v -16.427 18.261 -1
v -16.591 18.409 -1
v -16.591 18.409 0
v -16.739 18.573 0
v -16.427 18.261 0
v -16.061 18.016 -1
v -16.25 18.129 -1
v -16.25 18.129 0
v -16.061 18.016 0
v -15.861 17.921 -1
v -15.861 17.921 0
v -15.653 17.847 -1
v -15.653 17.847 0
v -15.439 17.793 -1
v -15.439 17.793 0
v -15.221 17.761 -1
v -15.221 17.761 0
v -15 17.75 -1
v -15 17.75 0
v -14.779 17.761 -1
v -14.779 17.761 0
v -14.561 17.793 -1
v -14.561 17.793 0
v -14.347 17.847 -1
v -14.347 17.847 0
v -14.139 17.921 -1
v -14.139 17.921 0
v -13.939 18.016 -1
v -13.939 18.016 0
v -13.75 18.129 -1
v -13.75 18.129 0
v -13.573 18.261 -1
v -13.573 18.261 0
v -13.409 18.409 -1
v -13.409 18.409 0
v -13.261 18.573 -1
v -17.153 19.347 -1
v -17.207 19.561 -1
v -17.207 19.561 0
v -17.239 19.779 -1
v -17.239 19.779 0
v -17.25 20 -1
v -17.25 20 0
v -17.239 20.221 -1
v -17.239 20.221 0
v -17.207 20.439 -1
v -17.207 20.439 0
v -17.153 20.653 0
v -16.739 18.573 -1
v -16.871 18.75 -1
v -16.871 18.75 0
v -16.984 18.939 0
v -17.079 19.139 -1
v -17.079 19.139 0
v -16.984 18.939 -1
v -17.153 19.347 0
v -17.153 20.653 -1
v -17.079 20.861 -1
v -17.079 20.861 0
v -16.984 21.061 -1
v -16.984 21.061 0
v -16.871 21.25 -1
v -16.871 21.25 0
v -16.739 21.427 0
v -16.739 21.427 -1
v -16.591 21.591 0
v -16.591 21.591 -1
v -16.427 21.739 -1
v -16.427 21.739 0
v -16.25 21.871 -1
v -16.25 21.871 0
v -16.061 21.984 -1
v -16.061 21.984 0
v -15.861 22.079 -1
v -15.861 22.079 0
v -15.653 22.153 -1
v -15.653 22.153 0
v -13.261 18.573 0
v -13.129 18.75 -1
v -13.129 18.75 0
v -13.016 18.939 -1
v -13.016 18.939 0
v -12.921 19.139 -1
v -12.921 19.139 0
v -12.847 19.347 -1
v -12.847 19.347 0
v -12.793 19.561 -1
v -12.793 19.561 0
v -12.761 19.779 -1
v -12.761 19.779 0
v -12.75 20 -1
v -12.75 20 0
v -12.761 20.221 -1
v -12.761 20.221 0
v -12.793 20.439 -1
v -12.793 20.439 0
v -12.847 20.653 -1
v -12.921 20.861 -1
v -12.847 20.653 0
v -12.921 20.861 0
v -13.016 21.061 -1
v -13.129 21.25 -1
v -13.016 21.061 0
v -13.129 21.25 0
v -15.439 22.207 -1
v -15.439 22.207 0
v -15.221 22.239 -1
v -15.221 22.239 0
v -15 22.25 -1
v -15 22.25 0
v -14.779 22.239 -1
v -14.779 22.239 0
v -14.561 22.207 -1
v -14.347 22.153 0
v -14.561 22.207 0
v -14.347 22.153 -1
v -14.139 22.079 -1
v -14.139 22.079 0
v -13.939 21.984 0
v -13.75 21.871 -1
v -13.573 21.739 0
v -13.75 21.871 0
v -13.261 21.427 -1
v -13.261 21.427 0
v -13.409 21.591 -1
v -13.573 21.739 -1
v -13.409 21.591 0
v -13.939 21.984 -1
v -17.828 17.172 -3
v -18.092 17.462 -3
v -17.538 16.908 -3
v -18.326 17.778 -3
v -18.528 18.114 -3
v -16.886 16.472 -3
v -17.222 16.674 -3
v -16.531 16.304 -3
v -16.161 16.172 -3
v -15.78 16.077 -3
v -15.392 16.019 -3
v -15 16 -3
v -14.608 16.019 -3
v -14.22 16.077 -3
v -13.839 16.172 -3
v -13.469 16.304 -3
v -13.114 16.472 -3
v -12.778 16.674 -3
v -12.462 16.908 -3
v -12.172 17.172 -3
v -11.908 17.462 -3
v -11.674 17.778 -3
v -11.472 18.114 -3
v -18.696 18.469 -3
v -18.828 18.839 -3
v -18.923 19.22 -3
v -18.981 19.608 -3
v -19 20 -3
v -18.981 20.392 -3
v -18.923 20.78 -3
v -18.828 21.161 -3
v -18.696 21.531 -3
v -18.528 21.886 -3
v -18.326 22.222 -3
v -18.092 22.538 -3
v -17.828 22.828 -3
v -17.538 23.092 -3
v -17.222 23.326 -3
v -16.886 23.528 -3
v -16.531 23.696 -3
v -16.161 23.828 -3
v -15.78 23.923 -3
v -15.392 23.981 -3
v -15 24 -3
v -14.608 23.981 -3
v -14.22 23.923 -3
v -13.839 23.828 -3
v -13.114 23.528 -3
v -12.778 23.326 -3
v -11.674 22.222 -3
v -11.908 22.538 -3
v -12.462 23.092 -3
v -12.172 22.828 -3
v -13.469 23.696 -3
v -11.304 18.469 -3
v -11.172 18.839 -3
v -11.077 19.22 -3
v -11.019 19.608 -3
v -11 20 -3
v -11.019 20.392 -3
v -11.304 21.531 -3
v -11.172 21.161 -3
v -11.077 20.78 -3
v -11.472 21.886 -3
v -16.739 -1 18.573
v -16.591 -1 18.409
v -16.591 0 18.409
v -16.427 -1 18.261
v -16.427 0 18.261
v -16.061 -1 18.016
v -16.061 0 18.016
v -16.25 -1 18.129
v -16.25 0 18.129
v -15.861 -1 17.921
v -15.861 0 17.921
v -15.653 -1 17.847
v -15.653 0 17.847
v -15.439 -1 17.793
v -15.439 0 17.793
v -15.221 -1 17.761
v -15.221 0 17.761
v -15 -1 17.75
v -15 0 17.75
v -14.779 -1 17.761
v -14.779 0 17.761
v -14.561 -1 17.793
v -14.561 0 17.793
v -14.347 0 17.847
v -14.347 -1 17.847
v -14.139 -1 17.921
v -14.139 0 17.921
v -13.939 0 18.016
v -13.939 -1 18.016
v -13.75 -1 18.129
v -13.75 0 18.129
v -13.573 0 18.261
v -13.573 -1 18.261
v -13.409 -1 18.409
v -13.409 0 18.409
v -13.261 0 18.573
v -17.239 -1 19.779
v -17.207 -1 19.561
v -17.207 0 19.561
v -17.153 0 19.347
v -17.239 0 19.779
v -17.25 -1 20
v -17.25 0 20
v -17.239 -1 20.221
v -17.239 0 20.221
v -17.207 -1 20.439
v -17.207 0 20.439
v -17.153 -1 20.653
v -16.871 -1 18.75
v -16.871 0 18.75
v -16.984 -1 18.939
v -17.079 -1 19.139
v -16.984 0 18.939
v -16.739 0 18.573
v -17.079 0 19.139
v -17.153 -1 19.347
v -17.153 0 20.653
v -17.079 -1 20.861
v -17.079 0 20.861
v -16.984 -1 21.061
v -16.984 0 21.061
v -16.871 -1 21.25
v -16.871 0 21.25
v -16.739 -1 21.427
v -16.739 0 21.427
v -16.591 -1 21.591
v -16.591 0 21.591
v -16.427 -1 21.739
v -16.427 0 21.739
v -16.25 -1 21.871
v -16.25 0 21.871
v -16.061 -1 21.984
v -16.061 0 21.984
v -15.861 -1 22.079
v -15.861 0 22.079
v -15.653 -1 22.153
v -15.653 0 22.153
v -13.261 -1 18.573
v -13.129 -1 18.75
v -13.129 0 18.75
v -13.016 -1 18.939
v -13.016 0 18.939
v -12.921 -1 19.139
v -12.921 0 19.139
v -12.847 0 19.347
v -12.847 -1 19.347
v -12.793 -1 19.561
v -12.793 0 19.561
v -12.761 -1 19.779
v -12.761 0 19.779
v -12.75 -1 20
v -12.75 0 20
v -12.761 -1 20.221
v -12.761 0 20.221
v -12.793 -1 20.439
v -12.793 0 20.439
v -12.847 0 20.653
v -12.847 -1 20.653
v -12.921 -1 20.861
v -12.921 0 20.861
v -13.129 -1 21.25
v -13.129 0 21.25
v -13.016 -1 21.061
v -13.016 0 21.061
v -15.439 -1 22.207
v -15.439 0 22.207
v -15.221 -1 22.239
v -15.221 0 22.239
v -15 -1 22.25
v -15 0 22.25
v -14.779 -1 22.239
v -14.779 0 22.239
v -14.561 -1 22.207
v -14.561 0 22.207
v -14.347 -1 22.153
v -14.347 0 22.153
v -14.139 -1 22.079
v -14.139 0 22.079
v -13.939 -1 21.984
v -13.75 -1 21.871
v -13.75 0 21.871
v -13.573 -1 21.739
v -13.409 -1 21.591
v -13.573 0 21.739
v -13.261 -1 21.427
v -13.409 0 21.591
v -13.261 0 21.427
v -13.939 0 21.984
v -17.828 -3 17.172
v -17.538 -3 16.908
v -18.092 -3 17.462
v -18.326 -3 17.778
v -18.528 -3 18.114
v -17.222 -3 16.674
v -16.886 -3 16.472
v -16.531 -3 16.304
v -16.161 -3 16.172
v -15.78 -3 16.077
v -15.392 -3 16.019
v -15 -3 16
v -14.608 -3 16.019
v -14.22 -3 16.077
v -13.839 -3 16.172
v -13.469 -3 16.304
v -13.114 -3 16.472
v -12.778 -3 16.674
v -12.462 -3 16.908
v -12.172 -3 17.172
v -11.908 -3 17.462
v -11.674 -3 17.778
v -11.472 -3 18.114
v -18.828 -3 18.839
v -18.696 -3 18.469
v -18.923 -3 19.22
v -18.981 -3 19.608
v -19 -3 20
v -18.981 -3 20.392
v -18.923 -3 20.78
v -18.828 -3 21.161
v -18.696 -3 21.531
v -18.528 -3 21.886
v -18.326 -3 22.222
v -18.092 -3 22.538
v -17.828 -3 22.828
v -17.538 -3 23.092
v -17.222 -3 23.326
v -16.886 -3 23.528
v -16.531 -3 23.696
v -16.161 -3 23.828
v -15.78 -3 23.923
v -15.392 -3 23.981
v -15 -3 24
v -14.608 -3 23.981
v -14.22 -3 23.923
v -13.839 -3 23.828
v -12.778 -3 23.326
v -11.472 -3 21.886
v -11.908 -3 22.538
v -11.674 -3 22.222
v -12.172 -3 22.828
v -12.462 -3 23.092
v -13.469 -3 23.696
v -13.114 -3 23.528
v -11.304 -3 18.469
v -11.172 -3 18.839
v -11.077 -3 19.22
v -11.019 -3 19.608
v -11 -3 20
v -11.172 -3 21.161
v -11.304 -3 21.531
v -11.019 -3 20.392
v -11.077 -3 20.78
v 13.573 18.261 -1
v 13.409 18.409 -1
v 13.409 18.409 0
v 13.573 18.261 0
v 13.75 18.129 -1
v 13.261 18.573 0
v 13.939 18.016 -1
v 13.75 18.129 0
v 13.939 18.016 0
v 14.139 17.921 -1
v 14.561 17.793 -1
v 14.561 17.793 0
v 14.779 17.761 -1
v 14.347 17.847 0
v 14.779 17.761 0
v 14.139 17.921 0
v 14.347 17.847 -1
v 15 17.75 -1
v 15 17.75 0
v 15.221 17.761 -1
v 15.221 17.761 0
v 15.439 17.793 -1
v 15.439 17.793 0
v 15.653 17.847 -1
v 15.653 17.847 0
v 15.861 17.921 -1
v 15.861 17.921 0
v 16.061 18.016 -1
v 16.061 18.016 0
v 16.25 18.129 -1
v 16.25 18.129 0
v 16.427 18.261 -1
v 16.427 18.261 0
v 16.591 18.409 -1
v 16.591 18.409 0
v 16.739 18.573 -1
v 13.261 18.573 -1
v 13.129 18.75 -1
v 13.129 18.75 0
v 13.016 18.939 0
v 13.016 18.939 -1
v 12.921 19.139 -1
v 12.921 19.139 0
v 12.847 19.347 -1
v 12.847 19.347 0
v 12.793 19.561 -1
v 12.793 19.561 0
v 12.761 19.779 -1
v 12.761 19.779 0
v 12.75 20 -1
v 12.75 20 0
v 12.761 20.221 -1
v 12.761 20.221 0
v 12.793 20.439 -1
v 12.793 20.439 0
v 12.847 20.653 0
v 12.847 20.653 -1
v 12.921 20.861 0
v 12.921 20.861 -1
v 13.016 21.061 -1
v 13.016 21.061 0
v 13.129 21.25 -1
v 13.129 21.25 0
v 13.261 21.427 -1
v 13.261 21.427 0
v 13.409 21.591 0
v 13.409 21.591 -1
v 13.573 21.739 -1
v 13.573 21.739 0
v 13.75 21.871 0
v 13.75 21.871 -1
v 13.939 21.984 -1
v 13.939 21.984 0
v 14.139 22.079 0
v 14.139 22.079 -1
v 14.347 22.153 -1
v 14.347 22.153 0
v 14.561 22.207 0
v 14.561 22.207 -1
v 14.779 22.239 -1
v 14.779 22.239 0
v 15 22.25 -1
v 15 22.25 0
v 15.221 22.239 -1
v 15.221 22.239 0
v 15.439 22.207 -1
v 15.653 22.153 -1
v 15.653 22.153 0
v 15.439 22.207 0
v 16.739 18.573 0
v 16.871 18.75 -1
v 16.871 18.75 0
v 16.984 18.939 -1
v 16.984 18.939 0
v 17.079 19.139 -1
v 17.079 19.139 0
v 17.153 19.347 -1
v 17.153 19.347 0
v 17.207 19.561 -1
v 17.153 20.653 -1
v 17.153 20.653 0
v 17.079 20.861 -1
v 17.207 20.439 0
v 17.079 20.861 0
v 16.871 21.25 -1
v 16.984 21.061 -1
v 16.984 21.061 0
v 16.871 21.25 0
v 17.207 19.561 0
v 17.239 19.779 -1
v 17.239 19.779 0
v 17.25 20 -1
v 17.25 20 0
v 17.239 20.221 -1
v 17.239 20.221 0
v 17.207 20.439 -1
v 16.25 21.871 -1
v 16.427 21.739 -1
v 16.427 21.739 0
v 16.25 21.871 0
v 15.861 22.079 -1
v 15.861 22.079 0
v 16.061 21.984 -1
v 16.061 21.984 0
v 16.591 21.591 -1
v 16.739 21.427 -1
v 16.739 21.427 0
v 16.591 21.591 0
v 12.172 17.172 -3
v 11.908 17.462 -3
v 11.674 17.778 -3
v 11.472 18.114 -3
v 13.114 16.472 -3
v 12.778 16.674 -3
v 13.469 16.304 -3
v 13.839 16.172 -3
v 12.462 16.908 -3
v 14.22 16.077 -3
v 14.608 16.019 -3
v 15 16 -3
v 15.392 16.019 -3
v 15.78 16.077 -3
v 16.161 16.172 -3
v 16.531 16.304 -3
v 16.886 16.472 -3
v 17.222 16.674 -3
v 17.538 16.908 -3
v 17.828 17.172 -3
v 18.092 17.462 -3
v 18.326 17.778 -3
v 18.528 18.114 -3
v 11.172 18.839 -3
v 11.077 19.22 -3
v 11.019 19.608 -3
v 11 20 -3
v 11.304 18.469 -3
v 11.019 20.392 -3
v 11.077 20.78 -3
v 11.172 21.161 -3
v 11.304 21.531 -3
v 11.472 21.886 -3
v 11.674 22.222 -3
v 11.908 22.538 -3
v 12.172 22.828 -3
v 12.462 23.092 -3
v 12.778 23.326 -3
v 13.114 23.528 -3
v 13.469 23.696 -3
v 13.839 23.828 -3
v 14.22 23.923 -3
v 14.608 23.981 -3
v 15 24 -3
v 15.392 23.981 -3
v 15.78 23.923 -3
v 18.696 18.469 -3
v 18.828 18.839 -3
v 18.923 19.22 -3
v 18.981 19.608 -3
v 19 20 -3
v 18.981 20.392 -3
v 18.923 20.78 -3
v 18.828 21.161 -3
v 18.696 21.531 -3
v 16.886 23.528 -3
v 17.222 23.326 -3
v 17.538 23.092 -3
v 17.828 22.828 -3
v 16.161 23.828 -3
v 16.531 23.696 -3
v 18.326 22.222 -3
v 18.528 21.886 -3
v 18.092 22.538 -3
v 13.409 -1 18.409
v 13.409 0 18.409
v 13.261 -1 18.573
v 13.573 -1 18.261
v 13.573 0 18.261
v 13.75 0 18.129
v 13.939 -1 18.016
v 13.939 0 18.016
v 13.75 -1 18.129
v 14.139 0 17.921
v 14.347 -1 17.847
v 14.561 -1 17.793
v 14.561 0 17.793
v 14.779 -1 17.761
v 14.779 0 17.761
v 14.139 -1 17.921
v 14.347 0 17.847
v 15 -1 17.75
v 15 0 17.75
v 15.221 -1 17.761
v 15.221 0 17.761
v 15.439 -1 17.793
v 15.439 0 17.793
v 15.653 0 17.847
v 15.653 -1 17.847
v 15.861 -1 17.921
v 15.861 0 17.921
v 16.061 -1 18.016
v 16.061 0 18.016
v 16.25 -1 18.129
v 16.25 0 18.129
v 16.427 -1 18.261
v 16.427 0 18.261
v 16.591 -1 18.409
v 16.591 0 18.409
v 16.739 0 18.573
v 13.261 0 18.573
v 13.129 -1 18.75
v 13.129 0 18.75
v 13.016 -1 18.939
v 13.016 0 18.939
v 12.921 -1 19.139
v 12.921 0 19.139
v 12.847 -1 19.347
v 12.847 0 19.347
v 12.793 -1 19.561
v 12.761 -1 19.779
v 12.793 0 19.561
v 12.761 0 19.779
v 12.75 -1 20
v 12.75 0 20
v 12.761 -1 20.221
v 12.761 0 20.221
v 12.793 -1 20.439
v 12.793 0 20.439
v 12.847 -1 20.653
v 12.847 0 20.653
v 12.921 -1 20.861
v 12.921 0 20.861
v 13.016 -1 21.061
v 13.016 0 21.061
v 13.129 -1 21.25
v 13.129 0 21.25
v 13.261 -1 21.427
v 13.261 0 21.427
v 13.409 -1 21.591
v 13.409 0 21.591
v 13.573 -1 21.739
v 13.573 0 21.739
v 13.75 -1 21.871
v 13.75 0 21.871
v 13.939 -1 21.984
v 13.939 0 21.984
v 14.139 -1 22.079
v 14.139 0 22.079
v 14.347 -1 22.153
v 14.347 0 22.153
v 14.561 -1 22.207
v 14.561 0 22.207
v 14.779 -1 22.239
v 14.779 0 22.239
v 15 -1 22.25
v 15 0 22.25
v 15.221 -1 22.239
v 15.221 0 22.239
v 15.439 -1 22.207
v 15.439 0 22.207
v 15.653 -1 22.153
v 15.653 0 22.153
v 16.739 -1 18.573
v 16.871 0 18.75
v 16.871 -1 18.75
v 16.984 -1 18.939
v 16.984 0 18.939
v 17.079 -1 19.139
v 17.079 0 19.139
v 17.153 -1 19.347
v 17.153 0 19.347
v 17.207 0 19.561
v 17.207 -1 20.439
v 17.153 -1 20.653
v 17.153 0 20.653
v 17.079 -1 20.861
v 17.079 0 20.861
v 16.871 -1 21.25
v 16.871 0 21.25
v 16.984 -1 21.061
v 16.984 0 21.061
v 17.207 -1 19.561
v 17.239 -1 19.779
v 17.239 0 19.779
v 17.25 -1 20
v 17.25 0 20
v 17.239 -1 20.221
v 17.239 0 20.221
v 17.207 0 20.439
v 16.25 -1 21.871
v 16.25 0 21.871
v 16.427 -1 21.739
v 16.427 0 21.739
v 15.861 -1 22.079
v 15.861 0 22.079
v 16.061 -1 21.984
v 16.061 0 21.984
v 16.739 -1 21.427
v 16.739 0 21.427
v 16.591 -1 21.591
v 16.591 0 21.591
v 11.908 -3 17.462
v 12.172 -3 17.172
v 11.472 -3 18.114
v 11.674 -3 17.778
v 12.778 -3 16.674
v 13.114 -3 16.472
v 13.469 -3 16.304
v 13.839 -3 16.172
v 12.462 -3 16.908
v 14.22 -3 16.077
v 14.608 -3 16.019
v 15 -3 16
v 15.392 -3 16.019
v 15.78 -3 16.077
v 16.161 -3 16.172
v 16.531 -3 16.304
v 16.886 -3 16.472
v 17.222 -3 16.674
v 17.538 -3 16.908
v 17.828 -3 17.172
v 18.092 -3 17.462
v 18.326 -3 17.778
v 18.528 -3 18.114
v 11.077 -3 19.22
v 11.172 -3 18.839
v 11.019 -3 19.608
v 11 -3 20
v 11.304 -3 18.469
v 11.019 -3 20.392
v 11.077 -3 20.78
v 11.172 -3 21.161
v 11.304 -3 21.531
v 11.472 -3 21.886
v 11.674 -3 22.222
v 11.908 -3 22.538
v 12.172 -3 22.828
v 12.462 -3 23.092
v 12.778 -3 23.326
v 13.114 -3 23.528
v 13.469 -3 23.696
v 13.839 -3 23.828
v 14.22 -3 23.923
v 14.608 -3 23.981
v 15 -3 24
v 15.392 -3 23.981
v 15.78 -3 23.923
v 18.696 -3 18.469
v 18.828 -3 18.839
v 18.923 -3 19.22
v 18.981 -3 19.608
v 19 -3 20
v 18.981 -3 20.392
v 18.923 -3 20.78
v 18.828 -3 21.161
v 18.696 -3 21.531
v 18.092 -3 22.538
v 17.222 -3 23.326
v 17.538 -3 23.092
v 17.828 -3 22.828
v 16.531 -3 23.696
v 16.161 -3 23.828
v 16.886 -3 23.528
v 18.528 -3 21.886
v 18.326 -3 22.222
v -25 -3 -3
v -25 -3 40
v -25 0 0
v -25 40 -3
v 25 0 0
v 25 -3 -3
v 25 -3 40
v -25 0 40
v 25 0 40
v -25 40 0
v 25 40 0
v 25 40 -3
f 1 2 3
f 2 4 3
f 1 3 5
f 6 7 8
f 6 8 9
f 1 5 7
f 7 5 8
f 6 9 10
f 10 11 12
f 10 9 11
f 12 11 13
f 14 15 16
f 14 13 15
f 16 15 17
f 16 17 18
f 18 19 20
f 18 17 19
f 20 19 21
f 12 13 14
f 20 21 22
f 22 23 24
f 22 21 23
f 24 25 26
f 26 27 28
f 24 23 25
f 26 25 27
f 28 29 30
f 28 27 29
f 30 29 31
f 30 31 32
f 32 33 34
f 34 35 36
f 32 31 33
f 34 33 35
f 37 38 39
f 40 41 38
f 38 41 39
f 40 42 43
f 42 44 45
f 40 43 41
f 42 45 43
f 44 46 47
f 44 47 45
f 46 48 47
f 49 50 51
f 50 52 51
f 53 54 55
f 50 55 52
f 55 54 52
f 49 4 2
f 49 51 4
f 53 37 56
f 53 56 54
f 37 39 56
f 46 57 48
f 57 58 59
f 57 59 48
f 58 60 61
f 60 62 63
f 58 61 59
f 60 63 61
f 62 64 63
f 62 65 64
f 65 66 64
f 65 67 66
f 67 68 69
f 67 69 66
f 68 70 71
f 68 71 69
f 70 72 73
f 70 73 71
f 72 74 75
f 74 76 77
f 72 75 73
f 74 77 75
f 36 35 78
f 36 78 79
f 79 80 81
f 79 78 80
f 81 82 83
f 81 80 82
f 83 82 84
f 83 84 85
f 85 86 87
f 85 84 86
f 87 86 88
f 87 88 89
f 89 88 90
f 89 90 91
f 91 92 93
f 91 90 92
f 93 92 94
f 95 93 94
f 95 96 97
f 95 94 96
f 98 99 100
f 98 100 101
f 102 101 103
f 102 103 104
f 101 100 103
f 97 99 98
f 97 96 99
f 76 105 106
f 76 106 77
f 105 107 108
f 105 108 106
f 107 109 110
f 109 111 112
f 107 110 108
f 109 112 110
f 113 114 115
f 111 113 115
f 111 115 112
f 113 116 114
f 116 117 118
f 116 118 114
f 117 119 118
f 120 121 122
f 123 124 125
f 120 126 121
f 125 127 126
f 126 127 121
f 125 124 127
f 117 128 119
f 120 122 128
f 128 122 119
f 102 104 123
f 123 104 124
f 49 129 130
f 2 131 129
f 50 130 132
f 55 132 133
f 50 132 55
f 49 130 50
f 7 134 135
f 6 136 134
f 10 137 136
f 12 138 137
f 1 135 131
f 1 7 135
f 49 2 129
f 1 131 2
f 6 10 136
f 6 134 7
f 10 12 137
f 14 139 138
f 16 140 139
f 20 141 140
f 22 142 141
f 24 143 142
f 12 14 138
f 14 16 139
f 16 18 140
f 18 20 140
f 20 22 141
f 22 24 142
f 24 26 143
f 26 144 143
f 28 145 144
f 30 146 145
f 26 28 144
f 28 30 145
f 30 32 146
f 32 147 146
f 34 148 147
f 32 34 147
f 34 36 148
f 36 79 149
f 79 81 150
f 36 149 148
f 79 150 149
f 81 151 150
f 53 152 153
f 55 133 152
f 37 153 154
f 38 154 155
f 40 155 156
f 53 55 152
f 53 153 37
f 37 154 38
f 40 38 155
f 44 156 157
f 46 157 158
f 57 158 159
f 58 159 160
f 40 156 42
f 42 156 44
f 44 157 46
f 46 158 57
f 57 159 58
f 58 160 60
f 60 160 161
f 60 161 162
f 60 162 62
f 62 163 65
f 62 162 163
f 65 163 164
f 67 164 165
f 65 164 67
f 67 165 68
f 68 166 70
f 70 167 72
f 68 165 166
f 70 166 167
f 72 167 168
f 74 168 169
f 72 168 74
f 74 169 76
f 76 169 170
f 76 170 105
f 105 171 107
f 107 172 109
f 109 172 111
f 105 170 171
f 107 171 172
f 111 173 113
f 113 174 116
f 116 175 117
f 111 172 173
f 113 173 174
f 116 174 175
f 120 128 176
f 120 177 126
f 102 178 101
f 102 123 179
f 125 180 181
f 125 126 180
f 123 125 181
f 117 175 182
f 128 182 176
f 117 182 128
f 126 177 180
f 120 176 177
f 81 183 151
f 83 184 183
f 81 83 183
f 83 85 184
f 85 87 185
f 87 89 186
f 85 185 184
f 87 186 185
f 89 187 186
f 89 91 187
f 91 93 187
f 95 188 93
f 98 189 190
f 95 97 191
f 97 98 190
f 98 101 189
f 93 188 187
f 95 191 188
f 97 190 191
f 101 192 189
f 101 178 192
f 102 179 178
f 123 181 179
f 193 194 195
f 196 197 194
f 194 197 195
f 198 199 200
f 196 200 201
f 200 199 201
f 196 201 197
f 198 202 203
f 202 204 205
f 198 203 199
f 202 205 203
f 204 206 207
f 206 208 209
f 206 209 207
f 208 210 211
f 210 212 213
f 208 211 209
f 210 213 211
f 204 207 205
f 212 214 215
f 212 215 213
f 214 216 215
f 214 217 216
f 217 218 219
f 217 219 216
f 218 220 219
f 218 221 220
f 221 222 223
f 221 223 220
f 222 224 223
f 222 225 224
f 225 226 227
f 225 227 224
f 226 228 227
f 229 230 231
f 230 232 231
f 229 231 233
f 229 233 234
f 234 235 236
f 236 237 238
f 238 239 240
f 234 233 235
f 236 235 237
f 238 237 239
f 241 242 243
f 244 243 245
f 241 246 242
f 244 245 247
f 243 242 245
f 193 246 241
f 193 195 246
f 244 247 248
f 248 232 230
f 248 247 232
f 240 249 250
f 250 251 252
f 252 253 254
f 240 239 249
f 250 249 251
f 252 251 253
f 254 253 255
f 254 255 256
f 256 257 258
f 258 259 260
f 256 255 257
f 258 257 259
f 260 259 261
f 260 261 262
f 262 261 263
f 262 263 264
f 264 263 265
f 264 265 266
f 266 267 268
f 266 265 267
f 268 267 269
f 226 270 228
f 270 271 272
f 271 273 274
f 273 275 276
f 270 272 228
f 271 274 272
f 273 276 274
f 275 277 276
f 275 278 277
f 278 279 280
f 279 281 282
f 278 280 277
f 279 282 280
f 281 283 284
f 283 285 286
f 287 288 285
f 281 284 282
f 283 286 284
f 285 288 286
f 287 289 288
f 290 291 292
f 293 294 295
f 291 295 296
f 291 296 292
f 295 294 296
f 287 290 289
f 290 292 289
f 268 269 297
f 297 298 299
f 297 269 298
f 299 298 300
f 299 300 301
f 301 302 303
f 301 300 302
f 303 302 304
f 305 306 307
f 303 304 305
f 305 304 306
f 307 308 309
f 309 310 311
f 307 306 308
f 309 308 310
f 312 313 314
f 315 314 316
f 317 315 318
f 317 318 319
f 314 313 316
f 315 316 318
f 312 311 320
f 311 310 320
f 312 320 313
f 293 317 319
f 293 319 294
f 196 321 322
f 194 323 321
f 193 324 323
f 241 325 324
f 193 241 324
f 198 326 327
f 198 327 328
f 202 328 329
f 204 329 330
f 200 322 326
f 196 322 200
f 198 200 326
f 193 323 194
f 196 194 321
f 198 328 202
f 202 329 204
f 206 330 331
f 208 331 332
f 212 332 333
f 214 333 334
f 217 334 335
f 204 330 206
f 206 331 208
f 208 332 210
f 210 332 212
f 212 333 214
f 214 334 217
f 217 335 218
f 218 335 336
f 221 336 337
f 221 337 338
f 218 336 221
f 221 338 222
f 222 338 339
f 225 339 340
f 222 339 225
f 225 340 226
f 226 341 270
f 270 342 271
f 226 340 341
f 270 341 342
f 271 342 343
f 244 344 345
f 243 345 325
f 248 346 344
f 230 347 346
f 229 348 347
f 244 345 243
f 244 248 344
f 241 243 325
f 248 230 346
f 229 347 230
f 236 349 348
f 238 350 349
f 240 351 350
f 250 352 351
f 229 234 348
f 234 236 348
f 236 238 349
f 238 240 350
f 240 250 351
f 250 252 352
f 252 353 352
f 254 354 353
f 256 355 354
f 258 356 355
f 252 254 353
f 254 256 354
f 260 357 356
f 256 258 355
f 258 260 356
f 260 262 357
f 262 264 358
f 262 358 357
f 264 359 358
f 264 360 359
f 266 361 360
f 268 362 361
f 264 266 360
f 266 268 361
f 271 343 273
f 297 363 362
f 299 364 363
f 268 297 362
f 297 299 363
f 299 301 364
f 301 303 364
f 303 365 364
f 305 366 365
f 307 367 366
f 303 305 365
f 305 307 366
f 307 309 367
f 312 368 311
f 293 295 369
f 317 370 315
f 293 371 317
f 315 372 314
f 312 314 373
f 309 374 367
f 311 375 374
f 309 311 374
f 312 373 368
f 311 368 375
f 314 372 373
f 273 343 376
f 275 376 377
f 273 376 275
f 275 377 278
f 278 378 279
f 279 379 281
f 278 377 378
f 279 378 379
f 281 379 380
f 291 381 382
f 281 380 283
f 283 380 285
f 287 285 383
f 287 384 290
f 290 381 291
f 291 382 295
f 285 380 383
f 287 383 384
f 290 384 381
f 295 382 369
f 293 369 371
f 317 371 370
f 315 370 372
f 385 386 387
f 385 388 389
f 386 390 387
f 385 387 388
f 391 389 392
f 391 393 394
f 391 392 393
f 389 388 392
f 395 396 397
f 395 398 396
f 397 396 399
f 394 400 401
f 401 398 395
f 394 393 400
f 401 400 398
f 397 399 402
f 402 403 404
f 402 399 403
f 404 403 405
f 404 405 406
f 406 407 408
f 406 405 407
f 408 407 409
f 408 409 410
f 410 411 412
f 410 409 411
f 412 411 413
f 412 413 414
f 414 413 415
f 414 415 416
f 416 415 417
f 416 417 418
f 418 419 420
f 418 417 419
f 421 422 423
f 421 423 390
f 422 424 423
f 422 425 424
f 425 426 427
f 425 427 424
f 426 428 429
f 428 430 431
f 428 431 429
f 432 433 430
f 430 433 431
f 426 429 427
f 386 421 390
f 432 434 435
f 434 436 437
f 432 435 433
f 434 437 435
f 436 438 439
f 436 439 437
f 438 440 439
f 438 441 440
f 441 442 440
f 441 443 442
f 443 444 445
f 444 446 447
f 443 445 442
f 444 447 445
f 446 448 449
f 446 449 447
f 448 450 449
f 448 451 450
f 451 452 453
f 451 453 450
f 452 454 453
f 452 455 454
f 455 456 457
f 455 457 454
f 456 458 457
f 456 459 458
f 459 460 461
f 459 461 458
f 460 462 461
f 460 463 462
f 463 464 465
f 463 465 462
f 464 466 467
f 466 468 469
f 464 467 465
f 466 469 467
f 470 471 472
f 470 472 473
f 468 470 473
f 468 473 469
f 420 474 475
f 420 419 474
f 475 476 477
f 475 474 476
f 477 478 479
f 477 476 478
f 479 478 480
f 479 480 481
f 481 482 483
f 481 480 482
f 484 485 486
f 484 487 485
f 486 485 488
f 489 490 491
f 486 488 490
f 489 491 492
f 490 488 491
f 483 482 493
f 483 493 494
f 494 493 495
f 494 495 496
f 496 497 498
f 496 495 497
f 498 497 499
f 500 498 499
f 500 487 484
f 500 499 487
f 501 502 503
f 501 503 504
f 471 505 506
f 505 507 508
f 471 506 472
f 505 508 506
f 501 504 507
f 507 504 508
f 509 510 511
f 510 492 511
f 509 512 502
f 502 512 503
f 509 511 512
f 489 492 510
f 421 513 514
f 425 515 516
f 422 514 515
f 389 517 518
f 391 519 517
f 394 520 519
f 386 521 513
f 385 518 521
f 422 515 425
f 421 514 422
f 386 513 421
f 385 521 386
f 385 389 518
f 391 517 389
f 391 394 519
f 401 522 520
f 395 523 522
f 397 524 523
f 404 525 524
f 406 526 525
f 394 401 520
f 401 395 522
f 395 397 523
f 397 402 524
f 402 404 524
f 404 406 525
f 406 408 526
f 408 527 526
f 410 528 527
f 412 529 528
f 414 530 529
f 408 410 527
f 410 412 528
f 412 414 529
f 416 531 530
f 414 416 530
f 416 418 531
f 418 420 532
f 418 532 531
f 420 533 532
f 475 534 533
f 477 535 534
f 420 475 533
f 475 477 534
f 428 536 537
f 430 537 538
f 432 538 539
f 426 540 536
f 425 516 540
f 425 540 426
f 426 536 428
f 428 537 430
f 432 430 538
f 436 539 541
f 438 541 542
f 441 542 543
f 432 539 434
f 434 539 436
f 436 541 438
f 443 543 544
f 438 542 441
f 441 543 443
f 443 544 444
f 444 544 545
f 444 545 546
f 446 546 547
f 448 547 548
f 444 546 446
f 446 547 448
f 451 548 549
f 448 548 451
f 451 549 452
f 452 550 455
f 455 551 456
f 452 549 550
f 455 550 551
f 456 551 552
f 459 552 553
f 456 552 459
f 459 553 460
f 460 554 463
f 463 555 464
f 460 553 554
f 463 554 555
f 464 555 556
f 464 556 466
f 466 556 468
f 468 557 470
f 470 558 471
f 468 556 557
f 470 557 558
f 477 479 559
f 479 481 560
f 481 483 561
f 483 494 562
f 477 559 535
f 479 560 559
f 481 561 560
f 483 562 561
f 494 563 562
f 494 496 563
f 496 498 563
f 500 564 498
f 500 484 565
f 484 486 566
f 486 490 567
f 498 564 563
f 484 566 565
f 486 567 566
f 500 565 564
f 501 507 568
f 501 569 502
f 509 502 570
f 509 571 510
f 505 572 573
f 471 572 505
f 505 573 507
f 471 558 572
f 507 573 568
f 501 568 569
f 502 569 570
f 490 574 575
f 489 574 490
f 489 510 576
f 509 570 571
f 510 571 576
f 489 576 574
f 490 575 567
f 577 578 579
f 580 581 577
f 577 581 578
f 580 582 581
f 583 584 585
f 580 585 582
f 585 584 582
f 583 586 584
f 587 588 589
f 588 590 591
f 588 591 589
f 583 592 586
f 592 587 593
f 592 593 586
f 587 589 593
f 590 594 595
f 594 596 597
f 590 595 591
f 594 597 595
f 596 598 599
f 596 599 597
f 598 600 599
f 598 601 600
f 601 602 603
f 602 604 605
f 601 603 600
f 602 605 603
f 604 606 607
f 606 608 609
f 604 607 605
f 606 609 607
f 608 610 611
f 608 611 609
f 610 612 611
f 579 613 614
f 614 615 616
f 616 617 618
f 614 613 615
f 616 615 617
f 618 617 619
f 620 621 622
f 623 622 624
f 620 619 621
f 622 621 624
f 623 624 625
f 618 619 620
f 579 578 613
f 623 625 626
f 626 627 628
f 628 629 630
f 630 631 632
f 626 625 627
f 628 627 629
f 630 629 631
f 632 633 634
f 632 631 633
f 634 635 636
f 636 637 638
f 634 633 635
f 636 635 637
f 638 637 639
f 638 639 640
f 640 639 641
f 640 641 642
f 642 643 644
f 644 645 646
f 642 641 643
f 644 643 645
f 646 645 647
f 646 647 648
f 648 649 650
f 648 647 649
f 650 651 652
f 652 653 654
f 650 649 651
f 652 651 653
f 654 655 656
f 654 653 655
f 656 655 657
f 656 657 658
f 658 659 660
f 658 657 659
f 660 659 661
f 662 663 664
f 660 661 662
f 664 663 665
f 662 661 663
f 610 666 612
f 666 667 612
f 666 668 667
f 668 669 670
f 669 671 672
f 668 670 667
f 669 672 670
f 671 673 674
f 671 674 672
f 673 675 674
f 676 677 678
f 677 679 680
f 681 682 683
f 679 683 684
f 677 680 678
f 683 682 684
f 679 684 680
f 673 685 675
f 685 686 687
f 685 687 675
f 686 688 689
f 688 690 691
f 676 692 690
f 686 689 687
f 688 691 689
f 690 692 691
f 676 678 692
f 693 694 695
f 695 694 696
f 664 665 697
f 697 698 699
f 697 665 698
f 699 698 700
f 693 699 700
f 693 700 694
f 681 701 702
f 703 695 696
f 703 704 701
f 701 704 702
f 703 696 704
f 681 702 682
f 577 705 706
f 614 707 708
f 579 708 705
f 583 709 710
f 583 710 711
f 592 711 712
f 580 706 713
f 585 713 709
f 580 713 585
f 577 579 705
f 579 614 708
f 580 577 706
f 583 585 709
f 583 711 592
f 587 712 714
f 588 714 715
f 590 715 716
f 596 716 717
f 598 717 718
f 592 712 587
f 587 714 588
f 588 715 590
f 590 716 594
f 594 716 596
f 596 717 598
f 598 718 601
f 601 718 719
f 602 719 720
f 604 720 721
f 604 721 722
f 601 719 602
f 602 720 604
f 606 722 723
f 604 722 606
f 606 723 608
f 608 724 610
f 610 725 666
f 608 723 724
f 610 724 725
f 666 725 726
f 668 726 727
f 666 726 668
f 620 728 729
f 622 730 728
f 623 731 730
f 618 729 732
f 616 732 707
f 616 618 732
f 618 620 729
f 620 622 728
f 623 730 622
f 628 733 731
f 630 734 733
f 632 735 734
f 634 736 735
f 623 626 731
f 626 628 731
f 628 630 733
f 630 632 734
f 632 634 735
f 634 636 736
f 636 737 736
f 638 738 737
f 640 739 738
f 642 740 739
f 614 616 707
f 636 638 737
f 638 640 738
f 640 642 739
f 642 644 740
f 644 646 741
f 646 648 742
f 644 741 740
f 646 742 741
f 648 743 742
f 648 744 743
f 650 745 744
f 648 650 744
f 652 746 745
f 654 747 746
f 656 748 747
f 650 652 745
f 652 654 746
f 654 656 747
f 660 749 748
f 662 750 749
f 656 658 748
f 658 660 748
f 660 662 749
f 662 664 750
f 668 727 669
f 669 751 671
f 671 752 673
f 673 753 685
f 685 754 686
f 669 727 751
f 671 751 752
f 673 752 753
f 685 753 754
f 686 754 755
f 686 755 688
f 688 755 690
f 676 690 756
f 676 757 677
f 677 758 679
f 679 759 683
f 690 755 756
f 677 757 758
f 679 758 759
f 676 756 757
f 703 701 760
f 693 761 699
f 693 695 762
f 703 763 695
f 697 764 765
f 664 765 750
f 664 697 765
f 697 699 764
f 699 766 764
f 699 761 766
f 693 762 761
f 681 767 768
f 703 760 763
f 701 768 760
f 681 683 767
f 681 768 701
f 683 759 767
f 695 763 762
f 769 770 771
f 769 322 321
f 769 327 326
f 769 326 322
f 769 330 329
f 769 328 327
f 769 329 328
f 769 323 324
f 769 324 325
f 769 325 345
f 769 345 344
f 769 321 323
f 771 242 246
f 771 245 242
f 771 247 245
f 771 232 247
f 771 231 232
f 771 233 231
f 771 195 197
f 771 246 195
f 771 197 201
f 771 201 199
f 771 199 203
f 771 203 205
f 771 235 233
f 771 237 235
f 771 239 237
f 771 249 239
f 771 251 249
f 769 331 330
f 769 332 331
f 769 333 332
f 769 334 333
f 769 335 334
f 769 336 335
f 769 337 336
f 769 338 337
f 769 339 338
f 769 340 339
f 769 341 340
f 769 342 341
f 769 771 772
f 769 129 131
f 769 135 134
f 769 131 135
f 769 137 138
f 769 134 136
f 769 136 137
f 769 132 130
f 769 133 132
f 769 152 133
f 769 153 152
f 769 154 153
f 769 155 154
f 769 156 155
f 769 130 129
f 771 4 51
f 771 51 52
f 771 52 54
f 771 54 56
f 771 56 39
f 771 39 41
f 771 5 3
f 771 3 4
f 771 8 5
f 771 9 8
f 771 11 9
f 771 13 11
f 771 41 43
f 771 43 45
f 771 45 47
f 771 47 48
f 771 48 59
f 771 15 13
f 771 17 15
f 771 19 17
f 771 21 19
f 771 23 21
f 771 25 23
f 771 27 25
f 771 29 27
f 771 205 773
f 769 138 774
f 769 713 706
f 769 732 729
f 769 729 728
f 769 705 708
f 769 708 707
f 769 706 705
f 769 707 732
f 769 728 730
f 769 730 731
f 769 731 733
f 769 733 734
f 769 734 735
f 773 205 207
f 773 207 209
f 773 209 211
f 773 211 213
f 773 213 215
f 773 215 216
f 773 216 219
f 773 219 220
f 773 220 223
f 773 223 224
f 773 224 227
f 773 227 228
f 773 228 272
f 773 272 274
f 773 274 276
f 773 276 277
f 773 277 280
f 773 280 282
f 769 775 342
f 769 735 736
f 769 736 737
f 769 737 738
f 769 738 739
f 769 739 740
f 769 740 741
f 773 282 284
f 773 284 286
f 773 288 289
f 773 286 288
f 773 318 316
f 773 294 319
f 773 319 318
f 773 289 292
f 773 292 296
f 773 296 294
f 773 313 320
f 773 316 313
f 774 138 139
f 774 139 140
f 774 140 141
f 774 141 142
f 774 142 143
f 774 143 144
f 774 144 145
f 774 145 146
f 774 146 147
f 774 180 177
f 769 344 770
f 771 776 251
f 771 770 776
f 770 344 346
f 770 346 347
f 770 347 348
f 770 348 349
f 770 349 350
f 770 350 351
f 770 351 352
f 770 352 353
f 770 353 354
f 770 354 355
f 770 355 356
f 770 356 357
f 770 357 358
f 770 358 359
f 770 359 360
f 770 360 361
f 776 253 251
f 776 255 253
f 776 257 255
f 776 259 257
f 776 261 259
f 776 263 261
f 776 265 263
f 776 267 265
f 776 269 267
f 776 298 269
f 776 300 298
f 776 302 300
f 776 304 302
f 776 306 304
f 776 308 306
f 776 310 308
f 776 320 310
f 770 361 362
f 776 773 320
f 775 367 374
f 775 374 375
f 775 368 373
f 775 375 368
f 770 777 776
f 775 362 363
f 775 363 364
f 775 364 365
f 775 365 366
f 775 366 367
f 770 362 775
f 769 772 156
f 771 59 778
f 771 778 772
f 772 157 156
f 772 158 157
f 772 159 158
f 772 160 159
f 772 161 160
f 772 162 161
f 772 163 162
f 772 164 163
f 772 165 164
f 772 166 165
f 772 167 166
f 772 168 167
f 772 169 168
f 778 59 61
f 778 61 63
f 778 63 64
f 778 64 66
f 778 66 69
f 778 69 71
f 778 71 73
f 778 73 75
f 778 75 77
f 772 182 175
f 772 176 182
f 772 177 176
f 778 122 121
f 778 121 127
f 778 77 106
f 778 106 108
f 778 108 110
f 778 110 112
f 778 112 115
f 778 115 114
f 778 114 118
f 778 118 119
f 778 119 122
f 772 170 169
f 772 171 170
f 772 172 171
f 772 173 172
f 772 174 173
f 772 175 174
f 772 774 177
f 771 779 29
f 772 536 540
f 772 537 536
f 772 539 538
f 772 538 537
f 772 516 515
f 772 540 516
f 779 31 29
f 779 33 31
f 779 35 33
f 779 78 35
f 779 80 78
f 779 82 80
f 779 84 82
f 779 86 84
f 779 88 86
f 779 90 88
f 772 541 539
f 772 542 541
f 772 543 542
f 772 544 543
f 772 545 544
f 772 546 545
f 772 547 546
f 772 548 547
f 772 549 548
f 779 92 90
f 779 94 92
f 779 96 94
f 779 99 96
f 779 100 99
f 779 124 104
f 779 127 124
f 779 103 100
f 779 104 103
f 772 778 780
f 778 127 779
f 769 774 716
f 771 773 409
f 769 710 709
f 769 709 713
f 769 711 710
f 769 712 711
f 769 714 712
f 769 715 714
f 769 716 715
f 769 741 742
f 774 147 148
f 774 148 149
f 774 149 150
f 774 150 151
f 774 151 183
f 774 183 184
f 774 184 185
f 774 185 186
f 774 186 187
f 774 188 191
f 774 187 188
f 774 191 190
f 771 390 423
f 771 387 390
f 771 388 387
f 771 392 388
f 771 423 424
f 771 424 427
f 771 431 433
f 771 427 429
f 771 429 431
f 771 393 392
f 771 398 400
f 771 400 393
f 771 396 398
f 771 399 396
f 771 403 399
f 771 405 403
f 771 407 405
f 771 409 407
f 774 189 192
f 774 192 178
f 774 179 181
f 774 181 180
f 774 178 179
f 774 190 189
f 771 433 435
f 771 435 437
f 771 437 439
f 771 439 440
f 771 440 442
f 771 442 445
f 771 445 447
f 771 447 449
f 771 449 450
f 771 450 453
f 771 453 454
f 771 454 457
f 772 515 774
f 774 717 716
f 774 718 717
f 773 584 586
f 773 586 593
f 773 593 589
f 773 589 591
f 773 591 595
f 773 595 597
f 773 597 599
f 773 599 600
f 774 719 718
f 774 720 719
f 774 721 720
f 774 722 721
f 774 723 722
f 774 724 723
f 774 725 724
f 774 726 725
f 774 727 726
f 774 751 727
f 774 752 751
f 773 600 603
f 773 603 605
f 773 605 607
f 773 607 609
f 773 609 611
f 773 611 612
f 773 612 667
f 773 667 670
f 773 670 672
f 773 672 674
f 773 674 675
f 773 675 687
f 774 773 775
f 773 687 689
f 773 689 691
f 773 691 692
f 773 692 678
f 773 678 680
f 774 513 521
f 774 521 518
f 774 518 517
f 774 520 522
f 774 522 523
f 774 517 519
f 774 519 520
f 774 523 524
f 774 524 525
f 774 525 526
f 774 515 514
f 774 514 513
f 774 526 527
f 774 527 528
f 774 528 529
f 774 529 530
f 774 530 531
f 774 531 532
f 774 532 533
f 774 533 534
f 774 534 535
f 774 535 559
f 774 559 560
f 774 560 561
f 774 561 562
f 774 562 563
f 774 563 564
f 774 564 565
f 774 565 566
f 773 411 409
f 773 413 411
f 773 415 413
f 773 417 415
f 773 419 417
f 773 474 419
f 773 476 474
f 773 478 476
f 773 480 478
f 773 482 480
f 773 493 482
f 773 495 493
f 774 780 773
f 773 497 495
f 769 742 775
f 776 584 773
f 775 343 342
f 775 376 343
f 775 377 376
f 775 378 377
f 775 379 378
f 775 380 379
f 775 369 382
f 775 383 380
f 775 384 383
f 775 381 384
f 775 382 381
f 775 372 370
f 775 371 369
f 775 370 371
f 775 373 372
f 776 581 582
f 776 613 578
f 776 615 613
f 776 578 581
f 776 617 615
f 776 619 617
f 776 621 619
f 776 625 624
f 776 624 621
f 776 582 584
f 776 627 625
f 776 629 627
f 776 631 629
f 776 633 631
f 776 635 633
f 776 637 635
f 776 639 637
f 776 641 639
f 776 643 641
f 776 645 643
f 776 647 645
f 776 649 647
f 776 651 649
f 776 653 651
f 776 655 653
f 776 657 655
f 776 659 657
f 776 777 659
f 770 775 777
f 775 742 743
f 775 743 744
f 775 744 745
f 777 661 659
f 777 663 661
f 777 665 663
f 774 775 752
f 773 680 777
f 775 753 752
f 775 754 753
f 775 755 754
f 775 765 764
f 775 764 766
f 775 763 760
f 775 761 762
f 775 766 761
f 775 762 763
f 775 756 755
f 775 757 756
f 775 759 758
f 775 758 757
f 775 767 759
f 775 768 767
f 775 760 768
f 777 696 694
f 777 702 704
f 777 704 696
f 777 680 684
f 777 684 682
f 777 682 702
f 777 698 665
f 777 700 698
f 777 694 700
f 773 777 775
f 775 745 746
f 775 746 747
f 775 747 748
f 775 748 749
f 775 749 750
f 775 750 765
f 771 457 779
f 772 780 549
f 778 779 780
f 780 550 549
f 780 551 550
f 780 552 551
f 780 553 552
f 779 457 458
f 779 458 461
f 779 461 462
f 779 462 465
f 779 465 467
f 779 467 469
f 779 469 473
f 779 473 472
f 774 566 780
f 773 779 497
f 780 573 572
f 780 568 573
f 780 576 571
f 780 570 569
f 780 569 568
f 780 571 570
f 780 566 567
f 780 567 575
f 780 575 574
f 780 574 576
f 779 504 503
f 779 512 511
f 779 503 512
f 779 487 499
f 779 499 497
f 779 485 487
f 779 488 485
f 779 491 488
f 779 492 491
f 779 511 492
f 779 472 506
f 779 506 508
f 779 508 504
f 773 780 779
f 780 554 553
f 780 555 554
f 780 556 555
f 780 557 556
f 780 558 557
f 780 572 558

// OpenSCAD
$fn = 64;

bracket_width = 50;
flange_depth = 40;
flange_height = 40;
thickness = 3;

through_diameter = 4.5;
countersink_diameter = 8;
countersink_depth = 2;

edge_offset = 10;
hole_x_offset = bracket_width / 2 - edge_offset;
epsilon = 0.01;

module bracket_body() {
    // Cross-section coordinates are (Y, Z); extrusion is along X.
    rotate([90, 0, 90])
        linear_extrude(height = bracket_width, center = true)
            polygon(points = [
                [0, 0],
                [0, flange_height],
                [-thickness, flange_height],
                [-thickness, -thickness],
                [flange_depth, -thickness],
                [flange_depth, 0]
            ]);
}

difference() {
    bracket_body();

    for (x_pos = [-hole_x_offset, hole_x_offset]) {
        // Horizontal flange: countersinks face outward in -Z.
        translate([x_pos, flange_depth / 2, -thickness - epsilon])
            cylinder(h = thickness + 2 * epsilon, d = through_diameter);
        translate([x_pos, flange_depth / 2, -thickness])
            cylinder(
                h = countersink_depth,
                d1 = countersink_diameter,
                d2 = through_diameter
            );

        // Vertical flange: countersinks face outward in -Y.
        translate([x_pos, -thickness - epsilon, flange_height / 2])
            rotate([-90, 0, 0])
                cylinder(h = thickness + 2 * epsilon, d = through_diameter);
        translate([x_pos, -thickness, flange_height / 2])
            rotate([-90, 0, 0])
                cylinder(
                    h = countersink_depth,
                    d1 = countersink_diameter,
                    d2 = through_diameter
                );
    }
}
